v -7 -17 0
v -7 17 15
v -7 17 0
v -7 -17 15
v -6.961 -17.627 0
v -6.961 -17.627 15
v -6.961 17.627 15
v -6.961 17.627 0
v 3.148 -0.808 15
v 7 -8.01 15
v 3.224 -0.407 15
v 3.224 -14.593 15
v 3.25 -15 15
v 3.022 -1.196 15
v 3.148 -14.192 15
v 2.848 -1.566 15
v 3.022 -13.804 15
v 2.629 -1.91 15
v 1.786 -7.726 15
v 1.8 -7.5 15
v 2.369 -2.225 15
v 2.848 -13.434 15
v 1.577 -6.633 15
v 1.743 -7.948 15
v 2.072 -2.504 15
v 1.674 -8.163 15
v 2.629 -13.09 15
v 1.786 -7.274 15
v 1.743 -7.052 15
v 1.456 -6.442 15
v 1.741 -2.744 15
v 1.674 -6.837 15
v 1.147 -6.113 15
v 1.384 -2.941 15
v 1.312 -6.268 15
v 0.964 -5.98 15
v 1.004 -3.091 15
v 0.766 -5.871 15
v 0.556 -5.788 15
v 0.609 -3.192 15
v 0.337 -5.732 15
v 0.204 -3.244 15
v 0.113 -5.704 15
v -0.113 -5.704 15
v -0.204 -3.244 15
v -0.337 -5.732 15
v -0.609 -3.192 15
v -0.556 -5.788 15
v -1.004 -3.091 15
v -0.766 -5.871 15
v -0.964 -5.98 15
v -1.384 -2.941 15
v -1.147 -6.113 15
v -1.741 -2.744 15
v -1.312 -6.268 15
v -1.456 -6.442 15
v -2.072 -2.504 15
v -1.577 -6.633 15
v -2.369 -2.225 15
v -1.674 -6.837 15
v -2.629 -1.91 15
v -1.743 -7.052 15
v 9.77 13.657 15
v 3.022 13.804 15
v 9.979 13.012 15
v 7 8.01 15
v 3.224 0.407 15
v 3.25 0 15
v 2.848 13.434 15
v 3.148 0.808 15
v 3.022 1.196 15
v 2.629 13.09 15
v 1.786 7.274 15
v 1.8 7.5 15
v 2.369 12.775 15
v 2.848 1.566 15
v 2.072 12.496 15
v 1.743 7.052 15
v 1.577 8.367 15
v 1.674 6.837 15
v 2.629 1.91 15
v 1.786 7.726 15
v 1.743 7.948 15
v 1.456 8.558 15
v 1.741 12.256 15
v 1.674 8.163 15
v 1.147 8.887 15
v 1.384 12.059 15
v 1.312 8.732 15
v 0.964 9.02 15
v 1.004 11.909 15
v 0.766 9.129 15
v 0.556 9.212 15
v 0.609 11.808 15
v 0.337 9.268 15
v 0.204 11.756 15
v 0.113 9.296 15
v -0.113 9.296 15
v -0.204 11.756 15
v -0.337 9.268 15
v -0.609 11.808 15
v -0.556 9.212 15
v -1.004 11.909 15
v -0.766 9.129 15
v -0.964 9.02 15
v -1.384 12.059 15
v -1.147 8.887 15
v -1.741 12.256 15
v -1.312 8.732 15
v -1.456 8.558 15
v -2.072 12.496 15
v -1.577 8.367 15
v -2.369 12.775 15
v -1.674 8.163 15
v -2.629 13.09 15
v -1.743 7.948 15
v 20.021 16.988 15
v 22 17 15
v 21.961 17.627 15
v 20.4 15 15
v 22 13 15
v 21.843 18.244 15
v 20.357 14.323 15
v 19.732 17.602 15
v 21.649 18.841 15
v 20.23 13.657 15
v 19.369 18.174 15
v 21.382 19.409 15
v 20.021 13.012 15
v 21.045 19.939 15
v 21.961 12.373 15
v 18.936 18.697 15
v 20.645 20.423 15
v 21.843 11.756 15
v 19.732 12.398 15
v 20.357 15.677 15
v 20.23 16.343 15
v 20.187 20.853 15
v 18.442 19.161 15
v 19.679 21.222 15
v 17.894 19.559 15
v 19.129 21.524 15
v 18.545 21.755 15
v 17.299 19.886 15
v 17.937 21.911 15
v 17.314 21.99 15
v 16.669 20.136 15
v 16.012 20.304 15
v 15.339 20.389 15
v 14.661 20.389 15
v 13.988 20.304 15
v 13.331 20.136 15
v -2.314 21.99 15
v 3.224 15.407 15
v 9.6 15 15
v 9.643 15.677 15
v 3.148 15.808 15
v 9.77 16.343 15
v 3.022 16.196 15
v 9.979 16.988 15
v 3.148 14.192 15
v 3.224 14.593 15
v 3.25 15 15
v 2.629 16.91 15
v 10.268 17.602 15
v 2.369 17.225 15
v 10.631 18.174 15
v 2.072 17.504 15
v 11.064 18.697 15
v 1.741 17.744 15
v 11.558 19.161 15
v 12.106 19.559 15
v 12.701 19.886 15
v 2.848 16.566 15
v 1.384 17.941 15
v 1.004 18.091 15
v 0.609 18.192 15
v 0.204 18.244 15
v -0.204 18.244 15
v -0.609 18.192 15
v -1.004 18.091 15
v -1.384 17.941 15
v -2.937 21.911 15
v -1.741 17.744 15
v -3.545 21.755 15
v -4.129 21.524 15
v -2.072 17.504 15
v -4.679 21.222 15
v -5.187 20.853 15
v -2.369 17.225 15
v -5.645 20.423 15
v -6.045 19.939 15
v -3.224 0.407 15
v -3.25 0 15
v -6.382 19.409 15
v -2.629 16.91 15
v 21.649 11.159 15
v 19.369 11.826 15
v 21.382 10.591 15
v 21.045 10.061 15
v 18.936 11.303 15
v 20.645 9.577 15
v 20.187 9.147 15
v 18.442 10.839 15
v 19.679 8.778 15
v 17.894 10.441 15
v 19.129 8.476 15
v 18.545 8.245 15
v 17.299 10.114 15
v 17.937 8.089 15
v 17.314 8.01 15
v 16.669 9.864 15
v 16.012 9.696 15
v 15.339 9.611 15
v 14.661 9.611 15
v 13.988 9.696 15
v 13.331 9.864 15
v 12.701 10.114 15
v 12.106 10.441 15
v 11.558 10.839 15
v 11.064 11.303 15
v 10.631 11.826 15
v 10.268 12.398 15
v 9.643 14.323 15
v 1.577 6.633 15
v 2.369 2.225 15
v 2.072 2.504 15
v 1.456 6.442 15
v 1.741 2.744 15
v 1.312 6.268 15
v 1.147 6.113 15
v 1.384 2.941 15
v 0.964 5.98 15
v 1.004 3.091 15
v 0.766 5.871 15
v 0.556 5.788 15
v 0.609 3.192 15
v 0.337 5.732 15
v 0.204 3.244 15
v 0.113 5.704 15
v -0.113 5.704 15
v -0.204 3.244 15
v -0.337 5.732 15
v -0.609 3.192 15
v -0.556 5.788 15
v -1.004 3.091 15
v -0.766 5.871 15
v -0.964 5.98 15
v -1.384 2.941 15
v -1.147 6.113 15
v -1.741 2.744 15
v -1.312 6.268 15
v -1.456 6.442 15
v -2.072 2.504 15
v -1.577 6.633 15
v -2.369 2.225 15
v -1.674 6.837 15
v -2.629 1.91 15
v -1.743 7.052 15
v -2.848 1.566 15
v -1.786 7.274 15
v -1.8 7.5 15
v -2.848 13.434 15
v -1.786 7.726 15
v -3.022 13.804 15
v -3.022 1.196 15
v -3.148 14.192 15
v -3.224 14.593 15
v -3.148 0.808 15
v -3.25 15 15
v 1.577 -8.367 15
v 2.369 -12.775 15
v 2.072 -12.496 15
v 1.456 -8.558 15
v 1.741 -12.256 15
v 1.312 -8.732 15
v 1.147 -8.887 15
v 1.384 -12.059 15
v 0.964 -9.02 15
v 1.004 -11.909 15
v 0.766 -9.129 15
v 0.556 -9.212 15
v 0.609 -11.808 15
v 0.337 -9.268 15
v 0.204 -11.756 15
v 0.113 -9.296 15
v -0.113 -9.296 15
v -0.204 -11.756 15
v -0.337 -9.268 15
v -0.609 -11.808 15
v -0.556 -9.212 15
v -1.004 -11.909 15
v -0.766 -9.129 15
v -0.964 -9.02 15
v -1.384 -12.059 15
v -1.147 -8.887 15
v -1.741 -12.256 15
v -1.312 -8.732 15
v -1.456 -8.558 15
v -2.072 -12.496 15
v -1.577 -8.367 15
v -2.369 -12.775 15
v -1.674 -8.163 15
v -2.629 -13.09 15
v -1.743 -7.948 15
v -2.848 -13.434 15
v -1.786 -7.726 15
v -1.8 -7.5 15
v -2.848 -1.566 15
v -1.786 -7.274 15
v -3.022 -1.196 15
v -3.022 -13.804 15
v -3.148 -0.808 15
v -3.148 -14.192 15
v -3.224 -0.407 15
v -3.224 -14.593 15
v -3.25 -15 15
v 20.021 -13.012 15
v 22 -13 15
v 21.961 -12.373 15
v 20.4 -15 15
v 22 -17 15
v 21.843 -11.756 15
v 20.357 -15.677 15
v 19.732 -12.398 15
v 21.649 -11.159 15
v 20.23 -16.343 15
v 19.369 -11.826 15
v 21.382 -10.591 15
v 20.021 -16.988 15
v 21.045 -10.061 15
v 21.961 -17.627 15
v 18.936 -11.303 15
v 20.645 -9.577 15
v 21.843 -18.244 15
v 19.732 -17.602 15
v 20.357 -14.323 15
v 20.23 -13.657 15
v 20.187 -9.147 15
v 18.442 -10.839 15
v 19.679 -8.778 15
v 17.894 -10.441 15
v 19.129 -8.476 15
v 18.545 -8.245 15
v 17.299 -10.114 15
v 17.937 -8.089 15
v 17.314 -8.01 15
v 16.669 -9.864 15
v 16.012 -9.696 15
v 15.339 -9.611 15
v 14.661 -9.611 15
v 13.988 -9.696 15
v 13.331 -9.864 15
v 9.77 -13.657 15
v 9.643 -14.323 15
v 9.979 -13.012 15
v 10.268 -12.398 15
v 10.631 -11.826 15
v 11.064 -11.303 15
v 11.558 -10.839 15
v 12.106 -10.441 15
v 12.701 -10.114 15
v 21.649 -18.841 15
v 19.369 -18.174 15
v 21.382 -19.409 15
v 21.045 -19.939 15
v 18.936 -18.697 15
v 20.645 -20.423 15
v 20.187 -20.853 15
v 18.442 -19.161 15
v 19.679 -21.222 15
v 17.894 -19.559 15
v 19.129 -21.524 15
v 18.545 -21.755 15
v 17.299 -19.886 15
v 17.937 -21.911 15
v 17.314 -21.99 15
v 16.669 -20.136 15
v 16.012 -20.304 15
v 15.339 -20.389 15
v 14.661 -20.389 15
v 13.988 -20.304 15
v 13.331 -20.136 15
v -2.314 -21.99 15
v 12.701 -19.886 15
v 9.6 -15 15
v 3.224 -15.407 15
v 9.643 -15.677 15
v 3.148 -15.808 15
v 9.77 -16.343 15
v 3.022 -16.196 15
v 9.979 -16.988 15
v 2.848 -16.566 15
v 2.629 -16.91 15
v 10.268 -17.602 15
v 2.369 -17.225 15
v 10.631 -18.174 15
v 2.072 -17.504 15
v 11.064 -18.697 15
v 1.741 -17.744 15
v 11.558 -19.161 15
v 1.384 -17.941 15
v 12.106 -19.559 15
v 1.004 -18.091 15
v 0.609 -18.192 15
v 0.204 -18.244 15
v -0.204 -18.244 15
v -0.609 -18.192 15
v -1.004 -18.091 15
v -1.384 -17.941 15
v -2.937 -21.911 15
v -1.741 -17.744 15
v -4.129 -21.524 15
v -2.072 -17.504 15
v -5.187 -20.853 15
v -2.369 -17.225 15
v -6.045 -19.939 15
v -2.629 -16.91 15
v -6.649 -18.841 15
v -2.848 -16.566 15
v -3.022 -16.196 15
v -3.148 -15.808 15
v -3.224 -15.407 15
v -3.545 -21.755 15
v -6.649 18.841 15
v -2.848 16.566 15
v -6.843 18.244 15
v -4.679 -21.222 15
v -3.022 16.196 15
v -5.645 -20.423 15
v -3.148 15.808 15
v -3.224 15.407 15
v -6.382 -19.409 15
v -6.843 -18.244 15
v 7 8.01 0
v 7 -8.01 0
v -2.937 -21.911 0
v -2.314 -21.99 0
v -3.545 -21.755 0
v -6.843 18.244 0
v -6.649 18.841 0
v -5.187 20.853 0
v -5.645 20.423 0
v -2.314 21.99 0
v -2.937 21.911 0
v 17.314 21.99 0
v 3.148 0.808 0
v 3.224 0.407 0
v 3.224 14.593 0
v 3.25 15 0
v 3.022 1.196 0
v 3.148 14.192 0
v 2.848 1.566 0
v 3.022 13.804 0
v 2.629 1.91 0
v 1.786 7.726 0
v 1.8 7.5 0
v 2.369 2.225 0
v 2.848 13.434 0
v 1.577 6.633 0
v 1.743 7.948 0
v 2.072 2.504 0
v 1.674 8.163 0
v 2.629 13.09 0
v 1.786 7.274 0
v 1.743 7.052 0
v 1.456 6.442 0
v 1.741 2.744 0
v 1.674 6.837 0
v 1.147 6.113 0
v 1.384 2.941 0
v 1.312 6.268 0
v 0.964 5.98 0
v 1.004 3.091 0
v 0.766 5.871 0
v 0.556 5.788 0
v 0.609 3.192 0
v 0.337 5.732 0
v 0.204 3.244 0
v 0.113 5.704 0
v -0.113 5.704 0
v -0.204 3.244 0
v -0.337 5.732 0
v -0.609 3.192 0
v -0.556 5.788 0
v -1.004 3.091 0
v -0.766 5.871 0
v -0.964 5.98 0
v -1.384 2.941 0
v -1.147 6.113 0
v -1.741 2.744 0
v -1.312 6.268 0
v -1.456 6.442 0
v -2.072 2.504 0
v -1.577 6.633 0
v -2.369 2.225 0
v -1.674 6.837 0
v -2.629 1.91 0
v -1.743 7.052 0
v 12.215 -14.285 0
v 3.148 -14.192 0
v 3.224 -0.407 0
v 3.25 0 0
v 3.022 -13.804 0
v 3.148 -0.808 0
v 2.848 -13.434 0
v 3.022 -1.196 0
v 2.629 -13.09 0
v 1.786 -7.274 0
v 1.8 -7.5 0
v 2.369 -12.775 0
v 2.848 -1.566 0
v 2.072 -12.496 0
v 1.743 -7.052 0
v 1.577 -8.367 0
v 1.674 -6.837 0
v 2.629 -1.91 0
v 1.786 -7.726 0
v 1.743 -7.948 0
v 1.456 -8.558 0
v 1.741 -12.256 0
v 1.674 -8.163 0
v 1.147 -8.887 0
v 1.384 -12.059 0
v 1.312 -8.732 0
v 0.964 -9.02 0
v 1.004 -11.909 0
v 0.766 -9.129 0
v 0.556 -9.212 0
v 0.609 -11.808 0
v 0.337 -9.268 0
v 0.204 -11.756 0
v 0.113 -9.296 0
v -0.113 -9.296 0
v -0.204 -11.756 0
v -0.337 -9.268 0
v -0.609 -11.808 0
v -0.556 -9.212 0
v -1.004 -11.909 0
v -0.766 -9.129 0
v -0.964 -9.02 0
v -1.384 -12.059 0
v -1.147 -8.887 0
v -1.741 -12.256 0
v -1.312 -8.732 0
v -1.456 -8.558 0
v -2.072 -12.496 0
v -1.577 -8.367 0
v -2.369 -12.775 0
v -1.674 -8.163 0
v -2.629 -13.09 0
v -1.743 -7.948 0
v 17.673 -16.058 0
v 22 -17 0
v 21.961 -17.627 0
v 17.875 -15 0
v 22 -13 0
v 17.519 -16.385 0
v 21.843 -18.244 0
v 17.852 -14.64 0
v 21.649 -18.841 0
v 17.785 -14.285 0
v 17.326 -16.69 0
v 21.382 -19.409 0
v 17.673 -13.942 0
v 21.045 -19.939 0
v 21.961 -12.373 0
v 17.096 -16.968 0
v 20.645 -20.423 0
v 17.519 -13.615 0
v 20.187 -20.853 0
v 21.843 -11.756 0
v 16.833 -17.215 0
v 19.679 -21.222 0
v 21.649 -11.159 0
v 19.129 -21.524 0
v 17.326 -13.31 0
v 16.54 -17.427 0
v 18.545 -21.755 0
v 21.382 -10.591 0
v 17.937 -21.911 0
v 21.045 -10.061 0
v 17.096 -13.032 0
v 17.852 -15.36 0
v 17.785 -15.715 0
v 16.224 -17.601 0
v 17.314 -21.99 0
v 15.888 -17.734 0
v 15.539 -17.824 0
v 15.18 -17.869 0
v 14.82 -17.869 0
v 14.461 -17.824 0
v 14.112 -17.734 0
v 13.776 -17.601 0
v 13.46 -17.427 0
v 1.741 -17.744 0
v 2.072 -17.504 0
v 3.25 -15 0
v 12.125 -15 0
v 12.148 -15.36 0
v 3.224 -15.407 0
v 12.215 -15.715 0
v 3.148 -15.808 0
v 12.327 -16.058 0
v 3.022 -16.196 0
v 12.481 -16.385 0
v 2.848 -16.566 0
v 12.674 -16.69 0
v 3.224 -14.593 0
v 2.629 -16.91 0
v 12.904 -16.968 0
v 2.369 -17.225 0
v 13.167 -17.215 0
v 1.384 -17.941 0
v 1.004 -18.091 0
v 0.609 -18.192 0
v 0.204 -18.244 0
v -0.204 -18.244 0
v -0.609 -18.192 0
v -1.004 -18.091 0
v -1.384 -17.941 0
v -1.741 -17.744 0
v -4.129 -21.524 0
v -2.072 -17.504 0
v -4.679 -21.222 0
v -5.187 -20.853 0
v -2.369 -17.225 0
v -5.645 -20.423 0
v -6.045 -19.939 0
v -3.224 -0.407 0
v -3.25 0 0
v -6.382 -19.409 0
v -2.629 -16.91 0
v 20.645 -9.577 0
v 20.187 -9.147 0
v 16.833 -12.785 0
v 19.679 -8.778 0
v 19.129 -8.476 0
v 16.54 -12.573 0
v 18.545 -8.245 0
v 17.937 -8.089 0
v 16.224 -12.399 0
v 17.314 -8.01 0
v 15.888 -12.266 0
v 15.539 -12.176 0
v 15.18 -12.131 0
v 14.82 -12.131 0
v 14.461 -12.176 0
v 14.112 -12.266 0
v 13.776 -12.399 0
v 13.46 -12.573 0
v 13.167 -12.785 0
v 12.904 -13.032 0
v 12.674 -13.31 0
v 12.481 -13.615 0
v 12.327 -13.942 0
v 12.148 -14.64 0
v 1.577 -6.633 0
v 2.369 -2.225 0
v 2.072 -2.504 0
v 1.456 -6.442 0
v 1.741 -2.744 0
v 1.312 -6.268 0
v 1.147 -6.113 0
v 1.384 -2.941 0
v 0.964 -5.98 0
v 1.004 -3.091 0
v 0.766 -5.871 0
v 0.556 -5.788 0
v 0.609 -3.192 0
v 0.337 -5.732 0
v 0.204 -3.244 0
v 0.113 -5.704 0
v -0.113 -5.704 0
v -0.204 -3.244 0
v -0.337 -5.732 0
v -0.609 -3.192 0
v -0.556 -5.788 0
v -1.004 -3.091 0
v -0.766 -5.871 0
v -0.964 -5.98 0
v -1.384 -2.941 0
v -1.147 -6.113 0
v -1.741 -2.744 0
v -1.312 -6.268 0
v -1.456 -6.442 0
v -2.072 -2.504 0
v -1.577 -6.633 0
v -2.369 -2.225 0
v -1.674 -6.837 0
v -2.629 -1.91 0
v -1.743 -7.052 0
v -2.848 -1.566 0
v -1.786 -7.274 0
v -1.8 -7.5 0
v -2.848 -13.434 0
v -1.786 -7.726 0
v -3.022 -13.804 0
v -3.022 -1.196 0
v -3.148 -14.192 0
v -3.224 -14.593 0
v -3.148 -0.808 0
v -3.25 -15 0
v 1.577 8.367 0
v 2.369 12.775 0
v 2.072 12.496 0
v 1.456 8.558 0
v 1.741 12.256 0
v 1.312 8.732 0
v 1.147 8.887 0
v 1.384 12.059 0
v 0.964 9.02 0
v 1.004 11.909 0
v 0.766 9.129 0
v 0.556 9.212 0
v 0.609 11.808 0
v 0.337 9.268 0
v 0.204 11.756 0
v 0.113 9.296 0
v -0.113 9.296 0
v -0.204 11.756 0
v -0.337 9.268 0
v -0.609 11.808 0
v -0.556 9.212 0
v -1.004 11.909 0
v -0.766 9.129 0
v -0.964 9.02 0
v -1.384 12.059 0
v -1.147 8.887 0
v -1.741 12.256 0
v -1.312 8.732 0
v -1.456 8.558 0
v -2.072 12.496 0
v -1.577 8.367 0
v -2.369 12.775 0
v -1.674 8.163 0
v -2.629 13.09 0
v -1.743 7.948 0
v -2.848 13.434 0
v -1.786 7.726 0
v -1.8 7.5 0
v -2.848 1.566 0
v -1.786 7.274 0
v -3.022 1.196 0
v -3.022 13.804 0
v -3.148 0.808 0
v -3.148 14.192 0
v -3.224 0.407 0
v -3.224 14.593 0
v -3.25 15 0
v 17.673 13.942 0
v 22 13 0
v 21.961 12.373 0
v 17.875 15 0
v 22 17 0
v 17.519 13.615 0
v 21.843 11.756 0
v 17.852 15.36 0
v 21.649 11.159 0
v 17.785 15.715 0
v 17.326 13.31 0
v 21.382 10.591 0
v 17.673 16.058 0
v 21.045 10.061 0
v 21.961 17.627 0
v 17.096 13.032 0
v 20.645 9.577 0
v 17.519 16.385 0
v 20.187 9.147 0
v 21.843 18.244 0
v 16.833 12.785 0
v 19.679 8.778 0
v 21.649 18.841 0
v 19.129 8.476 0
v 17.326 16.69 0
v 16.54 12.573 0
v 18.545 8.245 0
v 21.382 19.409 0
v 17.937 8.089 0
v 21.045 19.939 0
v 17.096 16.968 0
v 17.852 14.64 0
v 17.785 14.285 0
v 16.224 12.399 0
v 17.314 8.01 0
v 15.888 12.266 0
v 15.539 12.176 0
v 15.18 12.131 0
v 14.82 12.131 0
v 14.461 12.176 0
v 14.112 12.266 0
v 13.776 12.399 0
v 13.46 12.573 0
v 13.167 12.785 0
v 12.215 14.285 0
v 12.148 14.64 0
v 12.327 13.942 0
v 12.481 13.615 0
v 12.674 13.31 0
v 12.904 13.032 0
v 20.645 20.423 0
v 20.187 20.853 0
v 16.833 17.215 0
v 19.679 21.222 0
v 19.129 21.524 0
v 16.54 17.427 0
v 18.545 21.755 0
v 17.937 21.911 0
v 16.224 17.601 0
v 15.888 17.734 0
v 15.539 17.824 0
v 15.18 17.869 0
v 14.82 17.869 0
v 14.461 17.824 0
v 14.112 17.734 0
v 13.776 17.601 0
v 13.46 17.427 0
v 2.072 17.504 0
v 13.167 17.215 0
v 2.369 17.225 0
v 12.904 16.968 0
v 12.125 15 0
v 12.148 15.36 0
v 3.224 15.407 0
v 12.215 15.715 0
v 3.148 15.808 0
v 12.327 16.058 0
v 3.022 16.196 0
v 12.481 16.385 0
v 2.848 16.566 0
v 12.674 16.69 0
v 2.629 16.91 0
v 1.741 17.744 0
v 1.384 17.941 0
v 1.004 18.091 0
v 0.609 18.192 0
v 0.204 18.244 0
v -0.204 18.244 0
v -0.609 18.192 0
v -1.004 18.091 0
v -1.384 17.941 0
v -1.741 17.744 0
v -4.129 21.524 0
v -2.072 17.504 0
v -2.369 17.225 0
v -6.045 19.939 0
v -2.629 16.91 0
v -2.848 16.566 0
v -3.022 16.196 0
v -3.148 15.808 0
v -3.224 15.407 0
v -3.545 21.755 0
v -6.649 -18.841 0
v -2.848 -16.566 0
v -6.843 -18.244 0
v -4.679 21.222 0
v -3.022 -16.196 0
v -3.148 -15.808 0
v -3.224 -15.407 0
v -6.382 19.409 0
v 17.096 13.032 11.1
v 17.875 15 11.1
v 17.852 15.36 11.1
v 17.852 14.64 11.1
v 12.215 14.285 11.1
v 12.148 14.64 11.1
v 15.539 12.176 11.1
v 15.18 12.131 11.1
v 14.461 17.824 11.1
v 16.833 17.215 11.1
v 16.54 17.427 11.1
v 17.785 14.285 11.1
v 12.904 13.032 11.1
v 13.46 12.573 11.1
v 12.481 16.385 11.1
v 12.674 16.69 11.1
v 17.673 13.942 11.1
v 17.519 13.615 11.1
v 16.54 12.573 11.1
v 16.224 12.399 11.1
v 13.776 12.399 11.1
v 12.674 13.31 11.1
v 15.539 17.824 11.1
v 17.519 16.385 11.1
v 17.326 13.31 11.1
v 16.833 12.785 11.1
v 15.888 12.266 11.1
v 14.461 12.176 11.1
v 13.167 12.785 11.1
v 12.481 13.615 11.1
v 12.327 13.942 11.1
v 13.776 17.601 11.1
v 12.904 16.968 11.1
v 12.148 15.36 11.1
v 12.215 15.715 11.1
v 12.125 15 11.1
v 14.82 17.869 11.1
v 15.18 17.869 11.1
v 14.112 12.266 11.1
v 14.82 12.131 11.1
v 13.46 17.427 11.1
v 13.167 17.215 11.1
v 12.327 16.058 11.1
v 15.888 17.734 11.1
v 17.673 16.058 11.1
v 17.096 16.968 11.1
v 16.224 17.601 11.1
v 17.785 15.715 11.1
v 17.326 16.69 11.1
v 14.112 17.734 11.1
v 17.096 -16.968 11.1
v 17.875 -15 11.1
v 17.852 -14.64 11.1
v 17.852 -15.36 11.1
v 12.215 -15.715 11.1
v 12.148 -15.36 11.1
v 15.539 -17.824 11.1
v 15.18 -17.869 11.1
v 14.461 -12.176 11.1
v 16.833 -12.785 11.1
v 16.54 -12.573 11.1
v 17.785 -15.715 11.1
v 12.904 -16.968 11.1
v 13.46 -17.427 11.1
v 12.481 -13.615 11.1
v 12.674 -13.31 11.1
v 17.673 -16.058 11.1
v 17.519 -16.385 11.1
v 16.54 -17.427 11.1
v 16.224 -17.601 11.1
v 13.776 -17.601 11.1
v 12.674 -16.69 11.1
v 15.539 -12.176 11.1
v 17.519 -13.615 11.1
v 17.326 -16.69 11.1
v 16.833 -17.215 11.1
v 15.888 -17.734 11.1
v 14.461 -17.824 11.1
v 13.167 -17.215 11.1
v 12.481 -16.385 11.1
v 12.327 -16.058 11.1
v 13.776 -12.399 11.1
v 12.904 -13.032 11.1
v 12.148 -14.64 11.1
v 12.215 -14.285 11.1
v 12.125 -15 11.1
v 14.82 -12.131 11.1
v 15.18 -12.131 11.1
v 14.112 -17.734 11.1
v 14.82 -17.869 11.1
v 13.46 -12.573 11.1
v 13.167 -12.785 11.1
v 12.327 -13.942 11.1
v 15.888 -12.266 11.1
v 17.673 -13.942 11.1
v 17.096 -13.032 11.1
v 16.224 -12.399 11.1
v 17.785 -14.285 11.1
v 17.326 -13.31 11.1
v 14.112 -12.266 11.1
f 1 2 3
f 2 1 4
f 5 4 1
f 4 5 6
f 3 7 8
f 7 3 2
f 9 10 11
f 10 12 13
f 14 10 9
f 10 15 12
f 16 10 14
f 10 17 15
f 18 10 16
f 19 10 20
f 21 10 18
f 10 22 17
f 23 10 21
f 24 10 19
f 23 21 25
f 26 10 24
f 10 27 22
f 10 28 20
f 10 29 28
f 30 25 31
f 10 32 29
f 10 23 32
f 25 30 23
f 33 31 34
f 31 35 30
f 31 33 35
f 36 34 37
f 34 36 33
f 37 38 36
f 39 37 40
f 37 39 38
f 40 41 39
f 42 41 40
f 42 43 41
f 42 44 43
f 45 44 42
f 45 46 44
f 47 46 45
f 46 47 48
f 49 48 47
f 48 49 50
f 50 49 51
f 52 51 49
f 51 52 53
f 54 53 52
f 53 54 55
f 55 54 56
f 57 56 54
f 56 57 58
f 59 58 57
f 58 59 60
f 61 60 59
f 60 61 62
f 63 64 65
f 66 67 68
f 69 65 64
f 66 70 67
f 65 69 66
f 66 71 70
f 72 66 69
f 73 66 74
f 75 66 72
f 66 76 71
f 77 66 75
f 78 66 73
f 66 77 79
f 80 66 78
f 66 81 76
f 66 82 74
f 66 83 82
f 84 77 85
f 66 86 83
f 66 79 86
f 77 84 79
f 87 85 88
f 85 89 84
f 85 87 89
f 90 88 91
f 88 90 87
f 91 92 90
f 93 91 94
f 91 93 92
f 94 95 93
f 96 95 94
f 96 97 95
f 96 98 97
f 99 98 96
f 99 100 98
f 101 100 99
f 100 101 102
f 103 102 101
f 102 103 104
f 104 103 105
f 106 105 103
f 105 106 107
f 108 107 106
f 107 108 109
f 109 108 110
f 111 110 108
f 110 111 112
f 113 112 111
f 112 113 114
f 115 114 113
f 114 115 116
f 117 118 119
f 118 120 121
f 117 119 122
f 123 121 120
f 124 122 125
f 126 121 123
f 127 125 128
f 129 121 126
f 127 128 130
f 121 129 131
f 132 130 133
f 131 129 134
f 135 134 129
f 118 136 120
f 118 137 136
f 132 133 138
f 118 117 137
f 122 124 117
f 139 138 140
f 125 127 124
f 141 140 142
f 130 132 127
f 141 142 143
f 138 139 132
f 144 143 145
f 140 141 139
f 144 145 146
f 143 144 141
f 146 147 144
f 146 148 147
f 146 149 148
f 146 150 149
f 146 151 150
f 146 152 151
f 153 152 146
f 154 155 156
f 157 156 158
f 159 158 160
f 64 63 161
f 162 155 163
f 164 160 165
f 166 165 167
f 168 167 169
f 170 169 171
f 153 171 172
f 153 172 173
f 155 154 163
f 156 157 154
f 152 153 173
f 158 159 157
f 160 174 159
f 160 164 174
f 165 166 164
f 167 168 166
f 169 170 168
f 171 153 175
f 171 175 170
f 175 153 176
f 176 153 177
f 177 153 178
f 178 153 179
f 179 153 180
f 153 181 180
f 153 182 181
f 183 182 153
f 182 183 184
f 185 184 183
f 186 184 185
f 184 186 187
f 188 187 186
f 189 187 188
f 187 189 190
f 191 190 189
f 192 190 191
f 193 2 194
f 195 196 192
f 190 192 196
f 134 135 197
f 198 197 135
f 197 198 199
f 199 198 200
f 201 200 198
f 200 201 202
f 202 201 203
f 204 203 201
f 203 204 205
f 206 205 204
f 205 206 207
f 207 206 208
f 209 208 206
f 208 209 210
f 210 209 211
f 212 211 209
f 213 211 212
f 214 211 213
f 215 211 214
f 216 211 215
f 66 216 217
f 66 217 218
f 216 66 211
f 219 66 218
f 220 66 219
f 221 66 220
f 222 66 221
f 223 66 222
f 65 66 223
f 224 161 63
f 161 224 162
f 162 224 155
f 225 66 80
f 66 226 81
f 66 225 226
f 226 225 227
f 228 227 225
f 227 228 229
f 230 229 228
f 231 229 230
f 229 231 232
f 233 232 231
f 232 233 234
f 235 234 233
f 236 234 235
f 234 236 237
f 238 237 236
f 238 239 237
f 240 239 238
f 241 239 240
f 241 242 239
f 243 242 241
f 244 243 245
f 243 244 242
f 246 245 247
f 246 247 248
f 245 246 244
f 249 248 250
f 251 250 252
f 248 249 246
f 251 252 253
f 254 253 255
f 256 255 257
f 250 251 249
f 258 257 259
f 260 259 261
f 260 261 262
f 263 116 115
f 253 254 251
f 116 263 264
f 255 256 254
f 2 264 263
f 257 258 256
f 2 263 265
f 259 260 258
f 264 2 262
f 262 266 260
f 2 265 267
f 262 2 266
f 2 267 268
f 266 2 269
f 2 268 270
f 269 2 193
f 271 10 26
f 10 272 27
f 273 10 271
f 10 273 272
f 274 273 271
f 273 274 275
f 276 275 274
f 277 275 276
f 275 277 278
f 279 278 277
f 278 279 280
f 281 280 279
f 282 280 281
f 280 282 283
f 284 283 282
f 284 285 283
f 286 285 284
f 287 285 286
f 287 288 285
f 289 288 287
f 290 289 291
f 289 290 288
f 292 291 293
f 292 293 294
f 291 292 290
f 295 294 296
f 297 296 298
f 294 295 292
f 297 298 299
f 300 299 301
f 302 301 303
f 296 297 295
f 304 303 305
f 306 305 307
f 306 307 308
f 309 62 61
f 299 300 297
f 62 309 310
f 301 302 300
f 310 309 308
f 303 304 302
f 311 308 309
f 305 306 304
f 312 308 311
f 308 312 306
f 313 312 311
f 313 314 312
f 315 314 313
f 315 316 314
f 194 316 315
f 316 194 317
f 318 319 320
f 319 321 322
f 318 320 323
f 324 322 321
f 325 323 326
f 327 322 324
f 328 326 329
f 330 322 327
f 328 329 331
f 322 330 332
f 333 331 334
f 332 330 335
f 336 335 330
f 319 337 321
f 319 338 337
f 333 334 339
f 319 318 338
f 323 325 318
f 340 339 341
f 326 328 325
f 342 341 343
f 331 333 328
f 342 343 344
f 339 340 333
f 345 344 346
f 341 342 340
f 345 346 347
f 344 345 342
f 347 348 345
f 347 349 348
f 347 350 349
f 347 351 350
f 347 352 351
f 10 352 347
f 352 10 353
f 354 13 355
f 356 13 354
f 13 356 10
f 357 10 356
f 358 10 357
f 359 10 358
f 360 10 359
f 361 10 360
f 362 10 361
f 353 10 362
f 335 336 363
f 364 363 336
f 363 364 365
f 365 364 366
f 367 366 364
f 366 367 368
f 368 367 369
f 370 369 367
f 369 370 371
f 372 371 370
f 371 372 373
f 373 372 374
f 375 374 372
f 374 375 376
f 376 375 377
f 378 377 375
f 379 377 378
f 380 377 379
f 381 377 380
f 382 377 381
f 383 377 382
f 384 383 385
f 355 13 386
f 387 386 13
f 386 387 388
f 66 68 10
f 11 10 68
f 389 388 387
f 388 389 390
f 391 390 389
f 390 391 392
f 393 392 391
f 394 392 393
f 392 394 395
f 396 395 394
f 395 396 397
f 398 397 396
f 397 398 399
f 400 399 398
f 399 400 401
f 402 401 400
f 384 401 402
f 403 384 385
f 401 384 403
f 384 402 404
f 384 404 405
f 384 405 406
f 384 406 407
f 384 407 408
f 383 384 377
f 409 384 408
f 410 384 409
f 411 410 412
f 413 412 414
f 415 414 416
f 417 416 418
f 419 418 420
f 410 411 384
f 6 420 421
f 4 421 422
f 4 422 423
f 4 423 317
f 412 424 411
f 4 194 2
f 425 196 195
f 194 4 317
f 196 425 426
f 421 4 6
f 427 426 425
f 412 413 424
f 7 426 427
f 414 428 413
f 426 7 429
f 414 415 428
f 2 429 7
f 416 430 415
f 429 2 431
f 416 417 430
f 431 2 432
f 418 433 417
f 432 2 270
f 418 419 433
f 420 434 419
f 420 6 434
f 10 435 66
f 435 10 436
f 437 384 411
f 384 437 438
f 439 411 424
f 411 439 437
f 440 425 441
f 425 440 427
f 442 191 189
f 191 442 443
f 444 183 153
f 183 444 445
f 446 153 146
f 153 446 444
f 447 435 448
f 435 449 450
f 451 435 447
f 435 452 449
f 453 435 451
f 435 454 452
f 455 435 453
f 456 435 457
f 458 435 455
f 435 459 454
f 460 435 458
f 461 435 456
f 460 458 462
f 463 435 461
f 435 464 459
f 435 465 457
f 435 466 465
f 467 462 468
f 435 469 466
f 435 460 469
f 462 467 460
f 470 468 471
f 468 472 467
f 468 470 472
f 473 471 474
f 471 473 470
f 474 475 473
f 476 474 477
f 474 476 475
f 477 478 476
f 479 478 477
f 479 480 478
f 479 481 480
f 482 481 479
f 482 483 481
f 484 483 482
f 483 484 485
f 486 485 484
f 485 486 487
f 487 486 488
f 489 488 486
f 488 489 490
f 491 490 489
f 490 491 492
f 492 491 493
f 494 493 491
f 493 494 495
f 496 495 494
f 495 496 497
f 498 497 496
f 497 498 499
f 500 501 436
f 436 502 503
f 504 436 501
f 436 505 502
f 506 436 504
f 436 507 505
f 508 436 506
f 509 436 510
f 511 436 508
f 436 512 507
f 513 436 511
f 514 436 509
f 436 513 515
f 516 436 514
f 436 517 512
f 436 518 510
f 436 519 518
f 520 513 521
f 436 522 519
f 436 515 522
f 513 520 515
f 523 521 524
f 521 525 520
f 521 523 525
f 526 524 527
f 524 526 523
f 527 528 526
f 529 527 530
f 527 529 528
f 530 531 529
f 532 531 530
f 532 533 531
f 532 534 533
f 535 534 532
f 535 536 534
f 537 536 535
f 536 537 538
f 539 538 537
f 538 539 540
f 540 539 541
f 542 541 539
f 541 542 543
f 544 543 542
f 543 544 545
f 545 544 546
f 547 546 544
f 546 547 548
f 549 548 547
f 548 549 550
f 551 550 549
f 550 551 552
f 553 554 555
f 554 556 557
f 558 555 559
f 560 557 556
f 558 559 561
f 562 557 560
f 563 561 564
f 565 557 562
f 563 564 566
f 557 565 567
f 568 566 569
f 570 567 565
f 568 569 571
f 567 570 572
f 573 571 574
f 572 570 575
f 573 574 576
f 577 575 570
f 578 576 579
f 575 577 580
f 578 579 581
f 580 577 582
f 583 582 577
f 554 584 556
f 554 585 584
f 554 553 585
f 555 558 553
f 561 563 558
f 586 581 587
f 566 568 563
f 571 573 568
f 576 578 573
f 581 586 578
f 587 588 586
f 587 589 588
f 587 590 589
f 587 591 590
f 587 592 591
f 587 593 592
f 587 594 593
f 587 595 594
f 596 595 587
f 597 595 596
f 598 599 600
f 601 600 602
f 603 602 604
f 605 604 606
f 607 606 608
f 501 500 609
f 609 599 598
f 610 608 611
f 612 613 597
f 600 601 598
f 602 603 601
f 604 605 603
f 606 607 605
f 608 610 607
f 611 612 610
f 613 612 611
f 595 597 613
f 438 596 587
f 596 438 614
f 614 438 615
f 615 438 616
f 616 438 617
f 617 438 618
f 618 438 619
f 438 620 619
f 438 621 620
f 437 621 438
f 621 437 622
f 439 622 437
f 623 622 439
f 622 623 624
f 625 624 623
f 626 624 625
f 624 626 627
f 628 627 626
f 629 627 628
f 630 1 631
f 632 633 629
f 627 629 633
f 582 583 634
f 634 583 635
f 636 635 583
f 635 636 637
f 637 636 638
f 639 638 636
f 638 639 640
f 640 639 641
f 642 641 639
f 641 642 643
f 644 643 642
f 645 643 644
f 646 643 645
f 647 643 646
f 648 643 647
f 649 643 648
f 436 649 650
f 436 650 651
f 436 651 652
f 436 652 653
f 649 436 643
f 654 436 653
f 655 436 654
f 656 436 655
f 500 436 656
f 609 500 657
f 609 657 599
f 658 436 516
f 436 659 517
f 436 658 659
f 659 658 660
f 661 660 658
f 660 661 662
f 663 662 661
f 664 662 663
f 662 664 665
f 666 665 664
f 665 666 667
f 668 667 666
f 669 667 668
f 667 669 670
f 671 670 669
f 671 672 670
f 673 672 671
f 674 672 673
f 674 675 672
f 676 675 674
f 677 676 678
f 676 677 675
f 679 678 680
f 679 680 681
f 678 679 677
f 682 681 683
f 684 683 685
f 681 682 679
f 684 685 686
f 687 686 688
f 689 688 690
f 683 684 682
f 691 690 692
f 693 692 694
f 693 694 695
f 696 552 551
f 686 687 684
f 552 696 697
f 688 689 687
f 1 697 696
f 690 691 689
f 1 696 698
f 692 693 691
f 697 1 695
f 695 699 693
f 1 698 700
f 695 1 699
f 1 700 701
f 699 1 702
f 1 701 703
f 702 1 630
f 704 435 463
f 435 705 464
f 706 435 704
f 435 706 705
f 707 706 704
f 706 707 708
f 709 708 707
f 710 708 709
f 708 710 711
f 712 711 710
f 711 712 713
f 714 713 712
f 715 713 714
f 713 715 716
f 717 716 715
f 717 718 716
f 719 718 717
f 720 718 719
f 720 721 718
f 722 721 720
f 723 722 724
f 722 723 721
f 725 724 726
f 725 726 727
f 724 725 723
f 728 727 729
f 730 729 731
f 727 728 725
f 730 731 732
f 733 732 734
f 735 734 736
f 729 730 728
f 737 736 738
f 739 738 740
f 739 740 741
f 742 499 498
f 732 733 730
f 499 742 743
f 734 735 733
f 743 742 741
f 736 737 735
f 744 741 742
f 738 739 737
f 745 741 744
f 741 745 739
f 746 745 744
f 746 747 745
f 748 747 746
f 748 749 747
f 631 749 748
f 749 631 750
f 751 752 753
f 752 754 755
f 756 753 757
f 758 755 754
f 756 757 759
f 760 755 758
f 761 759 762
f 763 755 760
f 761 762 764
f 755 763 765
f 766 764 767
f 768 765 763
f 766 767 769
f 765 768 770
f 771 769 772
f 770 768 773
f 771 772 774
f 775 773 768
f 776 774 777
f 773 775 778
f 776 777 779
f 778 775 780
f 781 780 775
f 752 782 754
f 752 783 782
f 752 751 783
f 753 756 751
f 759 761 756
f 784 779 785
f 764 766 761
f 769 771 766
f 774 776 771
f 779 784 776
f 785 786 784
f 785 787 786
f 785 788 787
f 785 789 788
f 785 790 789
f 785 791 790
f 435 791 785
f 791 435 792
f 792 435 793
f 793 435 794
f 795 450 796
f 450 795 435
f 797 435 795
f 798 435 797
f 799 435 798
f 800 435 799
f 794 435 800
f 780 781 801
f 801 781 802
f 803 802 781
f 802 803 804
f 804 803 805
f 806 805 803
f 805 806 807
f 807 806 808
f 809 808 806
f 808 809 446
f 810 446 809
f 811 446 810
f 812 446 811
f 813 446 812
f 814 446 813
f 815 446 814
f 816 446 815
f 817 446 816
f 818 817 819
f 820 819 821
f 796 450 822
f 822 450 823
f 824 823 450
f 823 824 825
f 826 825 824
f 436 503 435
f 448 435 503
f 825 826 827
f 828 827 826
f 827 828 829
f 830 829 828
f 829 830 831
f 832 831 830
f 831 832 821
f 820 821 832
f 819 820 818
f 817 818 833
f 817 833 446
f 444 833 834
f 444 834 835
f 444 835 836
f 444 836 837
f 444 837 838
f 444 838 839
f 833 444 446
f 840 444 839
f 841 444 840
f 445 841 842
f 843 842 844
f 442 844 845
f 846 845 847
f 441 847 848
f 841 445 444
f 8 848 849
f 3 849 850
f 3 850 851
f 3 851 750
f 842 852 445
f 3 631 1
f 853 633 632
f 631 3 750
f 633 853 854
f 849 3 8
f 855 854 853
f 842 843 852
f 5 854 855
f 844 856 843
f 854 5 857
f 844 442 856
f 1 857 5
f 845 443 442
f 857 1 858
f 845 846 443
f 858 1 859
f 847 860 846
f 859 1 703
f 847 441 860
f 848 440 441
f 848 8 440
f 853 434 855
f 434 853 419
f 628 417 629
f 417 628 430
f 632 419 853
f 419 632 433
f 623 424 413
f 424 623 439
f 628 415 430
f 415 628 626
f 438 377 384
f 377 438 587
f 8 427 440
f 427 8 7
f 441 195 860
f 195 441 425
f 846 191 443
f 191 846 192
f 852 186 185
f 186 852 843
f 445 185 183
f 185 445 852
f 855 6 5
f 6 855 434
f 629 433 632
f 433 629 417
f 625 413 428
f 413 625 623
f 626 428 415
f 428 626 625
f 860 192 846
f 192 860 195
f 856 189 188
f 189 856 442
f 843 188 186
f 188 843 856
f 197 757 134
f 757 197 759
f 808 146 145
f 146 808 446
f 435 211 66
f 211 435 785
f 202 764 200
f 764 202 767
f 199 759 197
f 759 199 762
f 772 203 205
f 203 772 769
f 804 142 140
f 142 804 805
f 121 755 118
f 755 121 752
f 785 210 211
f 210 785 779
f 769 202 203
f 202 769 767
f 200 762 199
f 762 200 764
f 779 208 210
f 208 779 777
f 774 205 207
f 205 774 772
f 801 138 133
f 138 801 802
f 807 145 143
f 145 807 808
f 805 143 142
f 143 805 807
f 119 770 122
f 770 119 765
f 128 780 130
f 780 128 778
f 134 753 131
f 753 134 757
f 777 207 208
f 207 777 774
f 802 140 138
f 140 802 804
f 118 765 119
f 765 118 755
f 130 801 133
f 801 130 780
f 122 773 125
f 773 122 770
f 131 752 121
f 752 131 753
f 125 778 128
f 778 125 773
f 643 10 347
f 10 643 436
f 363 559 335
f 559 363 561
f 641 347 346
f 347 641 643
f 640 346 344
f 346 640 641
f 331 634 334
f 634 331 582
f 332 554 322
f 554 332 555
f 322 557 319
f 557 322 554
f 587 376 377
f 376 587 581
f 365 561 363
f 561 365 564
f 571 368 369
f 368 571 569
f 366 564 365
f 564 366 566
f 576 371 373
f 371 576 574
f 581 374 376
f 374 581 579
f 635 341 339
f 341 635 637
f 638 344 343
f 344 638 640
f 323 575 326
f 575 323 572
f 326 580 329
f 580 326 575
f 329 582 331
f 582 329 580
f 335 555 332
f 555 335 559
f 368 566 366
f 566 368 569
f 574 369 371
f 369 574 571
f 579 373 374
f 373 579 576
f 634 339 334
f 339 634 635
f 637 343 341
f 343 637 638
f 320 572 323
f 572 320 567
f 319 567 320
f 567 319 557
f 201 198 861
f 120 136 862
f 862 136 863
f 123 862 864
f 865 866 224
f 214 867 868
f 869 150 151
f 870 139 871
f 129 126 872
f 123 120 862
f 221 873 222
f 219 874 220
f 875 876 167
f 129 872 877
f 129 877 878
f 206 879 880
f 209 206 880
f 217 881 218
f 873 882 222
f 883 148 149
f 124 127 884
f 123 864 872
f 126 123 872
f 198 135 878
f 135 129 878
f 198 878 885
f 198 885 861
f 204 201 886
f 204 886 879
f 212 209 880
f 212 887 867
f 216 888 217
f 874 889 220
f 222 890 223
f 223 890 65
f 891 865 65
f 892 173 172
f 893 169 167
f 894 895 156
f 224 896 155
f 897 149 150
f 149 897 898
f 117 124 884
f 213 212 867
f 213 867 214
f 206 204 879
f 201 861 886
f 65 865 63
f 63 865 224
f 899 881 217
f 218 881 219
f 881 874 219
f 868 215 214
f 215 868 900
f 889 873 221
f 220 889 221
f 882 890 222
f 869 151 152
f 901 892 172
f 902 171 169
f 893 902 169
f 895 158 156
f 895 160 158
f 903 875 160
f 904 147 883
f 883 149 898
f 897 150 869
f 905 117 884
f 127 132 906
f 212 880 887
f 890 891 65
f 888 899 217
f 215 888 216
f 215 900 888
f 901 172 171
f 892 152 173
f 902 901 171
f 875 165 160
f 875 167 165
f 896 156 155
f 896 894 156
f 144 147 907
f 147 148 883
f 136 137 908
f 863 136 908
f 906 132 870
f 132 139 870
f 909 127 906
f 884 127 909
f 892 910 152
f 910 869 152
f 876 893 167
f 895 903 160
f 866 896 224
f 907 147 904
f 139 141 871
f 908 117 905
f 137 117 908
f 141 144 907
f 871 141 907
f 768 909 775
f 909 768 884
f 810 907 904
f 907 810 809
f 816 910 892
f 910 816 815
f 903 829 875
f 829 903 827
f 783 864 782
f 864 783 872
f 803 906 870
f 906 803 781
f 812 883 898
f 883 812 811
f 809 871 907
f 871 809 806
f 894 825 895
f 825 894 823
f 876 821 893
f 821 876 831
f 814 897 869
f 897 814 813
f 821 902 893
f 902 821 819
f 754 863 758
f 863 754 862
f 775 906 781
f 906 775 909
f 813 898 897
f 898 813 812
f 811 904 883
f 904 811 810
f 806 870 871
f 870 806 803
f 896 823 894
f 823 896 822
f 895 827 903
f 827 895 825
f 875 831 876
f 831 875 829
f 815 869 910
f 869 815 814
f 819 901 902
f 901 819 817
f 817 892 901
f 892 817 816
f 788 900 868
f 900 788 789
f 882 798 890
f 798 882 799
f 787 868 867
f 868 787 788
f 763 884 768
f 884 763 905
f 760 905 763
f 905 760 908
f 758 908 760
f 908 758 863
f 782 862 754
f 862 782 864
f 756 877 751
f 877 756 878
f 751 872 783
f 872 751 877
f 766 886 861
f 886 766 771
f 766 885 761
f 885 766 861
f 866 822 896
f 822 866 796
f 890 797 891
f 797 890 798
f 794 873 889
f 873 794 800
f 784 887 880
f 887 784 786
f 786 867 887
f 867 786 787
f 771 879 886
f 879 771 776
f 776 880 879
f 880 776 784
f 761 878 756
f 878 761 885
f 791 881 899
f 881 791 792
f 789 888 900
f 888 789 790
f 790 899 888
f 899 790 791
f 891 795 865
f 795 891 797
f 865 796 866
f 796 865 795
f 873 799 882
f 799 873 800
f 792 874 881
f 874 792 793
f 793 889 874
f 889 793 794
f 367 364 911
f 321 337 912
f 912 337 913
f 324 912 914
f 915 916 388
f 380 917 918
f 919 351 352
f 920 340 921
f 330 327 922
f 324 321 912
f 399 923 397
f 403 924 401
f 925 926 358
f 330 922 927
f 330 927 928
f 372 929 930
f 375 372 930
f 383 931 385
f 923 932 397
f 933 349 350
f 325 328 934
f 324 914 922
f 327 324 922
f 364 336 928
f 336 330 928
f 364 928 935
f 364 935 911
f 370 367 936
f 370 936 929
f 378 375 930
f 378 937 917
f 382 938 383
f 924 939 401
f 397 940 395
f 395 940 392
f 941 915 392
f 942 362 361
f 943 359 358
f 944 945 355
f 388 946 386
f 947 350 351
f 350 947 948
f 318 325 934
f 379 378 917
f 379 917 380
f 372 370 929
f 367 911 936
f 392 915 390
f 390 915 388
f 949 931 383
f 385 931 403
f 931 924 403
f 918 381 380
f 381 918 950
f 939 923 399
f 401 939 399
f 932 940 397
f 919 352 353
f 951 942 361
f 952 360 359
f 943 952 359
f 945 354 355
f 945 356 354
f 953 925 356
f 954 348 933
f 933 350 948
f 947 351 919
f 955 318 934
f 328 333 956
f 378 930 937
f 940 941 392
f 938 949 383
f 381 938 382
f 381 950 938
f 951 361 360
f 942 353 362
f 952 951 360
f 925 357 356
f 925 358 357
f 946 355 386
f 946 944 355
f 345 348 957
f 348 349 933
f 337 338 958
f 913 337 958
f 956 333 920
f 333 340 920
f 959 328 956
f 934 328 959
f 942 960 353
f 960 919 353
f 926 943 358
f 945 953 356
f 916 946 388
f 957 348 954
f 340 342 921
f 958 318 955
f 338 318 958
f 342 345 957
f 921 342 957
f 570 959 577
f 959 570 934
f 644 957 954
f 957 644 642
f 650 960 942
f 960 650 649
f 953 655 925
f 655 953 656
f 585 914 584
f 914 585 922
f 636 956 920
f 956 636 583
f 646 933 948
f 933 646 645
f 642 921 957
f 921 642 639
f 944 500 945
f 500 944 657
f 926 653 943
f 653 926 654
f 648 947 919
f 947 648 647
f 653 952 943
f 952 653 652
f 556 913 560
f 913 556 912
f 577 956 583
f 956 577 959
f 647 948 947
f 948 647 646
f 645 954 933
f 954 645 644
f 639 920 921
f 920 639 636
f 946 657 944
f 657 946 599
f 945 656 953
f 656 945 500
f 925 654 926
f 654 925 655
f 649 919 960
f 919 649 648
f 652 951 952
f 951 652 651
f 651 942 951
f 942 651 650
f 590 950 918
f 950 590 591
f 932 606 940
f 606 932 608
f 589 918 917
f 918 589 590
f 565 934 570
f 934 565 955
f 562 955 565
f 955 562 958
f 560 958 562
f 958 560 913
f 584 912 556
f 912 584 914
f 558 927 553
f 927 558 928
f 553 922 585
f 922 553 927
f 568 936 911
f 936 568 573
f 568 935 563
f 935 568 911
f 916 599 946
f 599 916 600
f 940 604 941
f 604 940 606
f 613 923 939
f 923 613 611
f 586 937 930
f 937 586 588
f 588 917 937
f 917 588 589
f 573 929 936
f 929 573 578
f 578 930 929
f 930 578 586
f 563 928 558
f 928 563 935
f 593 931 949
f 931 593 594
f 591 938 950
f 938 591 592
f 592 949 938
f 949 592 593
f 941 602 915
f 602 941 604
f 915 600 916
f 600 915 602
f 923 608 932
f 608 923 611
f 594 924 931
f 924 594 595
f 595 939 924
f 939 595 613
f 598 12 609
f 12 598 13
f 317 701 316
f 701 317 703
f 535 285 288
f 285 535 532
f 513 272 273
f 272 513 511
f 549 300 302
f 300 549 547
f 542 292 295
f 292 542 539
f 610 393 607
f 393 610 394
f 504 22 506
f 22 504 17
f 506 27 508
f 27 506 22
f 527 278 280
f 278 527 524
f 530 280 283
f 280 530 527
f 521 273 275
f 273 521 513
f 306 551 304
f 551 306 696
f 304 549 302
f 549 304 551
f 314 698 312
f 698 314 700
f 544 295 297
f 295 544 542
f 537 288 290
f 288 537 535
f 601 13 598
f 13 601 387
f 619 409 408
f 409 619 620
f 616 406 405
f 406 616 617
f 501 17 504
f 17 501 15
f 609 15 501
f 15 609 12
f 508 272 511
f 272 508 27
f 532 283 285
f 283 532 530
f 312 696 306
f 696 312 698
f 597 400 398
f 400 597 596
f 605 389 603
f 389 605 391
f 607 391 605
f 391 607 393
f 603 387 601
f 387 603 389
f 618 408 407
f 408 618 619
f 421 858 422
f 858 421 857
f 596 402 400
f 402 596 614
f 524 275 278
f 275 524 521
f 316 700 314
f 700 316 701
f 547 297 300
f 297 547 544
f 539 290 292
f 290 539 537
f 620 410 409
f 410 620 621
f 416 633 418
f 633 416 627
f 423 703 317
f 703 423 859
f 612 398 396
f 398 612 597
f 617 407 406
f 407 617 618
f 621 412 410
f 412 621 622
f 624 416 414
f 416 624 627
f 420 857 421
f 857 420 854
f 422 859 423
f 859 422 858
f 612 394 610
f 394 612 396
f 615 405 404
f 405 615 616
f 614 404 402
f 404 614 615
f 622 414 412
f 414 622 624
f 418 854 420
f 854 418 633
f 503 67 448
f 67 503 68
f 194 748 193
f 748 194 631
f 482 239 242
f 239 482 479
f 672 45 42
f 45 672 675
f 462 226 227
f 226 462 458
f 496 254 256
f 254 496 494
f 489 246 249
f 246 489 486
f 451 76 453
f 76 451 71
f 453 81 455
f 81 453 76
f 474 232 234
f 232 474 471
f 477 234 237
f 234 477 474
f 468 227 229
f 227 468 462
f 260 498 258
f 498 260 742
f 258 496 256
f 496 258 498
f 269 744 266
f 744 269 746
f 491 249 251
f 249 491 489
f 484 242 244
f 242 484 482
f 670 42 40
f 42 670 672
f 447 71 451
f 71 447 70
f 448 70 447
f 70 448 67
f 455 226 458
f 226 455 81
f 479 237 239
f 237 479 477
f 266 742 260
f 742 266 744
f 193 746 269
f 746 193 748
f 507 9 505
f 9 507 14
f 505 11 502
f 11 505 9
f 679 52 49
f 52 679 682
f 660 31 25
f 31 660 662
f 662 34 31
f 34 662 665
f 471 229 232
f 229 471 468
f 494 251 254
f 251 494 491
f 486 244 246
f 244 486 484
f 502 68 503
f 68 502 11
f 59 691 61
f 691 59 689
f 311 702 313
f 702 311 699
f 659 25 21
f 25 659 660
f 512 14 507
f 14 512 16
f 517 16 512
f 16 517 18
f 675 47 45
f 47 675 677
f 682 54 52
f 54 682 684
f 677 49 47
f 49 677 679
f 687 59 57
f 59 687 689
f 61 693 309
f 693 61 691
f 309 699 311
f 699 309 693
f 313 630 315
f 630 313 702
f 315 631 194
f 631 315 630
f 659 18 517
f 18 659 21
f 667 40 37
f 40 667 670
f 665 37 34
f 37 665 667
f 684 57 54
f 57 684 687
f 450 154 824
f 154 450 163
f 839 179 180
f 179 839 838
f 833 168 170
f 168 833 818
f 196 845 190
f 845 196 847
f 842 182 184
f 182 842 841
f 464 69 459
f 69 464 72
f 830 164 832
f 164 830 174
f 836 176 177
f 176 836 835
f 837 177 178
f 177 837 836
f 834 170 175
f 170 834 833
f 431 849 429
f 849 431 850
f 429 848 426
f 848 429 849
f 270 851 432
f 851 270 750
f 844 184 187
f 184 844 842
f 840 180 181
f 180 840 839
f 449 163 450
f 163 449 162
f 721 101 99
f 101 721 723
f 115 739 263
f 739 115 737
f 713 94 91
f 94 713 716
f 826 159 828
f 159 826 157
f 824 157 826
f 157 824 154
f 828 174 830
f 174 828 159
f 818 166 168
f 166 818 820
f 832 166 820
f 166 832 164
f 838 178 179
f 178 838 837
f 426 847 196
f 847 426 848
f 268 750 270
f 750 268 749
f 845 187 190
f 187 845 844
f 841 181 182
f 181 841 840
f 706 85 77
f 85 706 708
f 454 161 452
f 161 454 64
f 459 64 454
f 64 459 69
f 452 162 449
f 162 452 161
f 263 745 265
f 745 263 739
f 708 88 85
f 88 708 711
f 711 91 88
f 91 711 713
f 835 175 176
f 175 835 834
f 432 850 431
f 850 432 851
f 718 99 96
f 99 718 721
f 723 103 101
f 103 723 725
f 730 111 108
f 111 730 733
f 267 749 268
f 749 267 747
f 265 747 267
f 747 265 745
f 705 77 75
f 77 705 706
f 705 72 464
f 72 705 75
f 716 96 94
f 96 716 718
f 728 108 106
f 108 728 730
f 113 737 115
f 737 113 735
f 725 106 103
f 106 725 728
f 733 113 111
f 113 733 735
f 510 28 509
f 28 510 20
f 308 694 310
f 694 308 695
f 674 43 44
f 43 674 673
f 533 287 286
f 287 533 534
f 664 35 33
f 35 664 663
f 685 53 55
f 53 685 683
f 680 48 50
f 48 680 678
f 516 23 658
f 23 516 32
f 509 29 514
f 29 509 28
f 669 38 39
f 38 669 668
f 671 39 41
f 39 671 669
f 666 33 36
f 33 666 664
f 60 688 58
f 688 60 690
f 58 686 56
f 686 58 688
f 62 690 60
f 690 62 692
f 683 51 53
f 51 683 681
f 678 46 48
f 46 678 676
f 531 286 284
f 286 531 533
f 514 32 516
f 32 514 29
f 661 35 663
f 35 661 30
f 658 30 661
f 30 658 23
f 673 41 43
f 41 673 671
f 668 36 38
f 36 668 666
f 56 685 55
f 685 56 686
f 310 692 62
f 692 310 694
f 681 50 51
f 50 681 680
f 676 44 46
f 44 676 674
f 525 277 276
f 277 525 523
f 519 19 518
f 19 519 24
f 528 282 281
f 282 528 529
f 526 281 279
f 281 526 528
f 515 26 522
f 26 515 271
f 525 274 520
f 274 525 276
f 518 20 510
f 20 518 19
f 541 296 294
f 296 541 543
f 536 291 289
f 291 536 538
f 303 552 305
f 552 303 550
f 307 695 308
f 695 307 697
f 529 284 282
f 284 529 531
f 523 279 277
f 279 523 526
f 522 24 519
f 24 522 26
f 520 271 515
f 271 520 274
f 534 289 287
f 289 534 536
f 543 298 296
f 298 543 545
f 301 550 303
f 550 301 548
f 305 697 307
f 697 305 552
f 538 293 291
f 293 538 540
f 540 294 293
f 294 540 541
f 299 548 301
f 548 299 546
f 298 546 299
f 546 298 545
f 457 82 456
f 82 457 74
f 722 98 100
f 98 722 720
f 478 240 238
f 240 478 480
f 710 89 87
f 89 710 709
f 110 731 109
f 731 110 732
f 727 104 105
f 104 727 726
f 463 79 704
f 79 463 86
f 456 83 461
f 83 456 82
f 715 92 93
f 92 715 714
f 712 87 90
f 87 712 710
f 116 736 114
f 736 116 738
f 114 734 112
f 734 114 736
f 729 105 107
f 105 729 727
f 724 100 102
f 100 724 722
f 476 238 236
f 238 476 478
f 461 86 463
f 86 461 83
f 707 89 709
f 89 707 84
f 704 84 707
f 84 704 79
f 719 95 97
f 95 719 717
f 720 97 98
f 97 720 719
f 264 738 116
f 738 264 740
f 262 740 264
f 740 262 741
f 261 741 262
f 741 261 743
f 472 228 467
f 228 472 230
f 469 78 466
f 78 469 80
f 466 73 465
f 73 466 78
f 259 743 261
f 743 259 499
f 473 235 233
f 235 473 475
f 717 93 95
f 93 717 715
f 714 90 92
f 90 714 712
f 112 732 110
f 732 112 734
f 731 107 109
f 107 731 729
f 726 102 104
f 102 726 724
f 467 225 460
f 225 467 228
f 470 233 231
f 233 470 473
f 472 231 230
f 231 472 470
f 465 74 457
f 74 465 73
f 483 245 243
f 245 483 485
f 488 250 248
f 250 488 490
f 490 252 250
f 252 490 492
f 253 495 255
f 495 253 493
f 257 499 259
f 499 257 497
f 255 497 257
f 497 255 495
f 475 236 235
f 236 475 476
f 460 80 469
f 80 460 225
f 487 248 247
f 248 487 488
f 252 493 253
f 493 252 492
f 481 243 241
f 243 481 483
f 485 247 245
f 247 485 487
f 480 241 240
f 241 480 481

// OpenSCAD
$fn = 50;


difference() {
	union() {
		hull() {
			translate(v = [-2.0000000000, 17.0000000000, 0]) {
				cylinder(h = 15, r = 5);
			}
			translate(v = [2.0000000000, 17.0000000000, 0]) {
				cylinder(h = 15, r = 5);
			}
			translate(v = [-2.0000000000, -17.0000000000, 0]) {
				cylinder(h = 15, r = 5);
			}
			translate(v = [2.0000000000, -17.0000000000, 0]) {
				cylinder(h = 15, r = 5);
			}
		}
		translate(v = [7.5000000000, 15.0000000000, 0]) {
			hull() {
				translate(v = [-9.5000000000, 2.0000000000, 0]) {
					cylinder(h = 15, r = 5);
				}
				translate(v = [9.5000000000, 2.0000000000, 0]) {
					cylinder(h = 15, r = 5);
				}
				translate(v = [-9.5000000000, -2.0000000000, 0]) {
					cylinder(h = 15, r = 5);
				}
				translate(v = [9.5000000000, -2.0000000000, 0]) {
					cylinder(h = 15, r = 5);
				}
			}
		}
		translate(v = [7.5000000000, -15.0000000000, 0]) {
			hull() {
				translate(v = [-9.5000000000, 2.0000000000, 0]) {
					cylinder(h = 15, r = 5);
				}
				translate(v = [9.5000000000, 2.0000000000, 0]) {
					cylinder(h = 15, r = 5);
				}
				translate(v = [-9.5000000000, -2.0000000000, 0]) {
					cylinder(h = 15, r = 5);
				}
				translate(v = [9.5000000000, -2.0000000000, 0]) {
					cylinder(h = 15, r = 5);
				}
			}
		}
	}
	union() {
		translate(v = [15.0000000000, 15.0000000000, 15]) {
			rotate(a = [0, 0, 0]) {
				difference() {
					union() {
						#translate(v = [0, 0, -15.0000000000]) {
							cylinder(h = 15, r = 2.6000000000);
						}
						#translate(v = [0, 0, -3.9000000000]) {
							cylinder(h = 3.9000000000, r1 = 2.8750000000, r2 = 5.4000000000);
						}
						#translate(v = [0, 0, -15.0000000000]) {
							cylinder(h = 15, r = 2.8750000000);
						}
						#translate(v = [0, 0, -15.0000000000]) {
							cylinder(h = 15, r = 2.6000000000);
						}
					}
					union();
				}
			}
		}
		translate(v = [15.0000000000, -15.0000000000, 15]) {
			rotate(a = [0, 0, 0]) {
				difference() {
					union() {
						#translate(v = [0, 0, -15.0000000000]) {
							cylinder(h = 15, r = 2.6000000000);
						}
						#translate(v = [0, 0, -3.9000000000]) {
							cylinder(h = 3.9000000000, r1 = 2.8750000000, r2 = 5.4000000000);
						}
						#translate(v = [0, 0, -15.0000000000]) {
							cylinder(h = 15, r = 2.8750000000);
						}
						#translate(v = [0, 0, -15.0000000000]) {
							cylinder(h = 15, r = 2.6000000000);
						}
					}
					union();
				}
			}
		}
		translate(v = [0.0000000000, -15.0000000000, 0]) {
			translate(v = [0, 0, -100]) {
				cylinder(h = 200, r = 3.2500000000);
			}
		}
		translate(v = [0, 0, -100]) {
			cylinder(h = 200, r = 3.2500000000);
		}
		translate(v = [0.0000000000, 15.0000000000, 0]) {
			translate(v = [0, 0, -100]) {
				cylinder(h = 200, r = 3.2500000000);
			}
		}
		translate(v = [0.0000000000, -15.0000000000, 0]) {
			translate(v = [0, 0, -100]) {
				cylinder(h = 200, r = 1.8000000000);
			}
		}
		translate(v = [0.0000000000, -7.5000000000, 0]) {
			translate(v = [0, 0, -100]) {
				cylinder(h = 200, r = 1.8000000000);
			}
		}
		translate(v = [0, 0, -100]) {
			cylinder(h = 200, r = 1.8000000000);
		}
		translate(v = [0.0000000000, 7.5000000000, 0]) {
			translate(v = [0, 0, -100]) {
				cylinder(h = 200, r = 1.8000000000);
			}
		}
		translate(v = [0.0000000000, 15.0000000000, 0]) {
			translate(v = [0, 0, -100]) {
				cylinder(h = 200, r = 1.8000000000);
			}
		}
	}
}
